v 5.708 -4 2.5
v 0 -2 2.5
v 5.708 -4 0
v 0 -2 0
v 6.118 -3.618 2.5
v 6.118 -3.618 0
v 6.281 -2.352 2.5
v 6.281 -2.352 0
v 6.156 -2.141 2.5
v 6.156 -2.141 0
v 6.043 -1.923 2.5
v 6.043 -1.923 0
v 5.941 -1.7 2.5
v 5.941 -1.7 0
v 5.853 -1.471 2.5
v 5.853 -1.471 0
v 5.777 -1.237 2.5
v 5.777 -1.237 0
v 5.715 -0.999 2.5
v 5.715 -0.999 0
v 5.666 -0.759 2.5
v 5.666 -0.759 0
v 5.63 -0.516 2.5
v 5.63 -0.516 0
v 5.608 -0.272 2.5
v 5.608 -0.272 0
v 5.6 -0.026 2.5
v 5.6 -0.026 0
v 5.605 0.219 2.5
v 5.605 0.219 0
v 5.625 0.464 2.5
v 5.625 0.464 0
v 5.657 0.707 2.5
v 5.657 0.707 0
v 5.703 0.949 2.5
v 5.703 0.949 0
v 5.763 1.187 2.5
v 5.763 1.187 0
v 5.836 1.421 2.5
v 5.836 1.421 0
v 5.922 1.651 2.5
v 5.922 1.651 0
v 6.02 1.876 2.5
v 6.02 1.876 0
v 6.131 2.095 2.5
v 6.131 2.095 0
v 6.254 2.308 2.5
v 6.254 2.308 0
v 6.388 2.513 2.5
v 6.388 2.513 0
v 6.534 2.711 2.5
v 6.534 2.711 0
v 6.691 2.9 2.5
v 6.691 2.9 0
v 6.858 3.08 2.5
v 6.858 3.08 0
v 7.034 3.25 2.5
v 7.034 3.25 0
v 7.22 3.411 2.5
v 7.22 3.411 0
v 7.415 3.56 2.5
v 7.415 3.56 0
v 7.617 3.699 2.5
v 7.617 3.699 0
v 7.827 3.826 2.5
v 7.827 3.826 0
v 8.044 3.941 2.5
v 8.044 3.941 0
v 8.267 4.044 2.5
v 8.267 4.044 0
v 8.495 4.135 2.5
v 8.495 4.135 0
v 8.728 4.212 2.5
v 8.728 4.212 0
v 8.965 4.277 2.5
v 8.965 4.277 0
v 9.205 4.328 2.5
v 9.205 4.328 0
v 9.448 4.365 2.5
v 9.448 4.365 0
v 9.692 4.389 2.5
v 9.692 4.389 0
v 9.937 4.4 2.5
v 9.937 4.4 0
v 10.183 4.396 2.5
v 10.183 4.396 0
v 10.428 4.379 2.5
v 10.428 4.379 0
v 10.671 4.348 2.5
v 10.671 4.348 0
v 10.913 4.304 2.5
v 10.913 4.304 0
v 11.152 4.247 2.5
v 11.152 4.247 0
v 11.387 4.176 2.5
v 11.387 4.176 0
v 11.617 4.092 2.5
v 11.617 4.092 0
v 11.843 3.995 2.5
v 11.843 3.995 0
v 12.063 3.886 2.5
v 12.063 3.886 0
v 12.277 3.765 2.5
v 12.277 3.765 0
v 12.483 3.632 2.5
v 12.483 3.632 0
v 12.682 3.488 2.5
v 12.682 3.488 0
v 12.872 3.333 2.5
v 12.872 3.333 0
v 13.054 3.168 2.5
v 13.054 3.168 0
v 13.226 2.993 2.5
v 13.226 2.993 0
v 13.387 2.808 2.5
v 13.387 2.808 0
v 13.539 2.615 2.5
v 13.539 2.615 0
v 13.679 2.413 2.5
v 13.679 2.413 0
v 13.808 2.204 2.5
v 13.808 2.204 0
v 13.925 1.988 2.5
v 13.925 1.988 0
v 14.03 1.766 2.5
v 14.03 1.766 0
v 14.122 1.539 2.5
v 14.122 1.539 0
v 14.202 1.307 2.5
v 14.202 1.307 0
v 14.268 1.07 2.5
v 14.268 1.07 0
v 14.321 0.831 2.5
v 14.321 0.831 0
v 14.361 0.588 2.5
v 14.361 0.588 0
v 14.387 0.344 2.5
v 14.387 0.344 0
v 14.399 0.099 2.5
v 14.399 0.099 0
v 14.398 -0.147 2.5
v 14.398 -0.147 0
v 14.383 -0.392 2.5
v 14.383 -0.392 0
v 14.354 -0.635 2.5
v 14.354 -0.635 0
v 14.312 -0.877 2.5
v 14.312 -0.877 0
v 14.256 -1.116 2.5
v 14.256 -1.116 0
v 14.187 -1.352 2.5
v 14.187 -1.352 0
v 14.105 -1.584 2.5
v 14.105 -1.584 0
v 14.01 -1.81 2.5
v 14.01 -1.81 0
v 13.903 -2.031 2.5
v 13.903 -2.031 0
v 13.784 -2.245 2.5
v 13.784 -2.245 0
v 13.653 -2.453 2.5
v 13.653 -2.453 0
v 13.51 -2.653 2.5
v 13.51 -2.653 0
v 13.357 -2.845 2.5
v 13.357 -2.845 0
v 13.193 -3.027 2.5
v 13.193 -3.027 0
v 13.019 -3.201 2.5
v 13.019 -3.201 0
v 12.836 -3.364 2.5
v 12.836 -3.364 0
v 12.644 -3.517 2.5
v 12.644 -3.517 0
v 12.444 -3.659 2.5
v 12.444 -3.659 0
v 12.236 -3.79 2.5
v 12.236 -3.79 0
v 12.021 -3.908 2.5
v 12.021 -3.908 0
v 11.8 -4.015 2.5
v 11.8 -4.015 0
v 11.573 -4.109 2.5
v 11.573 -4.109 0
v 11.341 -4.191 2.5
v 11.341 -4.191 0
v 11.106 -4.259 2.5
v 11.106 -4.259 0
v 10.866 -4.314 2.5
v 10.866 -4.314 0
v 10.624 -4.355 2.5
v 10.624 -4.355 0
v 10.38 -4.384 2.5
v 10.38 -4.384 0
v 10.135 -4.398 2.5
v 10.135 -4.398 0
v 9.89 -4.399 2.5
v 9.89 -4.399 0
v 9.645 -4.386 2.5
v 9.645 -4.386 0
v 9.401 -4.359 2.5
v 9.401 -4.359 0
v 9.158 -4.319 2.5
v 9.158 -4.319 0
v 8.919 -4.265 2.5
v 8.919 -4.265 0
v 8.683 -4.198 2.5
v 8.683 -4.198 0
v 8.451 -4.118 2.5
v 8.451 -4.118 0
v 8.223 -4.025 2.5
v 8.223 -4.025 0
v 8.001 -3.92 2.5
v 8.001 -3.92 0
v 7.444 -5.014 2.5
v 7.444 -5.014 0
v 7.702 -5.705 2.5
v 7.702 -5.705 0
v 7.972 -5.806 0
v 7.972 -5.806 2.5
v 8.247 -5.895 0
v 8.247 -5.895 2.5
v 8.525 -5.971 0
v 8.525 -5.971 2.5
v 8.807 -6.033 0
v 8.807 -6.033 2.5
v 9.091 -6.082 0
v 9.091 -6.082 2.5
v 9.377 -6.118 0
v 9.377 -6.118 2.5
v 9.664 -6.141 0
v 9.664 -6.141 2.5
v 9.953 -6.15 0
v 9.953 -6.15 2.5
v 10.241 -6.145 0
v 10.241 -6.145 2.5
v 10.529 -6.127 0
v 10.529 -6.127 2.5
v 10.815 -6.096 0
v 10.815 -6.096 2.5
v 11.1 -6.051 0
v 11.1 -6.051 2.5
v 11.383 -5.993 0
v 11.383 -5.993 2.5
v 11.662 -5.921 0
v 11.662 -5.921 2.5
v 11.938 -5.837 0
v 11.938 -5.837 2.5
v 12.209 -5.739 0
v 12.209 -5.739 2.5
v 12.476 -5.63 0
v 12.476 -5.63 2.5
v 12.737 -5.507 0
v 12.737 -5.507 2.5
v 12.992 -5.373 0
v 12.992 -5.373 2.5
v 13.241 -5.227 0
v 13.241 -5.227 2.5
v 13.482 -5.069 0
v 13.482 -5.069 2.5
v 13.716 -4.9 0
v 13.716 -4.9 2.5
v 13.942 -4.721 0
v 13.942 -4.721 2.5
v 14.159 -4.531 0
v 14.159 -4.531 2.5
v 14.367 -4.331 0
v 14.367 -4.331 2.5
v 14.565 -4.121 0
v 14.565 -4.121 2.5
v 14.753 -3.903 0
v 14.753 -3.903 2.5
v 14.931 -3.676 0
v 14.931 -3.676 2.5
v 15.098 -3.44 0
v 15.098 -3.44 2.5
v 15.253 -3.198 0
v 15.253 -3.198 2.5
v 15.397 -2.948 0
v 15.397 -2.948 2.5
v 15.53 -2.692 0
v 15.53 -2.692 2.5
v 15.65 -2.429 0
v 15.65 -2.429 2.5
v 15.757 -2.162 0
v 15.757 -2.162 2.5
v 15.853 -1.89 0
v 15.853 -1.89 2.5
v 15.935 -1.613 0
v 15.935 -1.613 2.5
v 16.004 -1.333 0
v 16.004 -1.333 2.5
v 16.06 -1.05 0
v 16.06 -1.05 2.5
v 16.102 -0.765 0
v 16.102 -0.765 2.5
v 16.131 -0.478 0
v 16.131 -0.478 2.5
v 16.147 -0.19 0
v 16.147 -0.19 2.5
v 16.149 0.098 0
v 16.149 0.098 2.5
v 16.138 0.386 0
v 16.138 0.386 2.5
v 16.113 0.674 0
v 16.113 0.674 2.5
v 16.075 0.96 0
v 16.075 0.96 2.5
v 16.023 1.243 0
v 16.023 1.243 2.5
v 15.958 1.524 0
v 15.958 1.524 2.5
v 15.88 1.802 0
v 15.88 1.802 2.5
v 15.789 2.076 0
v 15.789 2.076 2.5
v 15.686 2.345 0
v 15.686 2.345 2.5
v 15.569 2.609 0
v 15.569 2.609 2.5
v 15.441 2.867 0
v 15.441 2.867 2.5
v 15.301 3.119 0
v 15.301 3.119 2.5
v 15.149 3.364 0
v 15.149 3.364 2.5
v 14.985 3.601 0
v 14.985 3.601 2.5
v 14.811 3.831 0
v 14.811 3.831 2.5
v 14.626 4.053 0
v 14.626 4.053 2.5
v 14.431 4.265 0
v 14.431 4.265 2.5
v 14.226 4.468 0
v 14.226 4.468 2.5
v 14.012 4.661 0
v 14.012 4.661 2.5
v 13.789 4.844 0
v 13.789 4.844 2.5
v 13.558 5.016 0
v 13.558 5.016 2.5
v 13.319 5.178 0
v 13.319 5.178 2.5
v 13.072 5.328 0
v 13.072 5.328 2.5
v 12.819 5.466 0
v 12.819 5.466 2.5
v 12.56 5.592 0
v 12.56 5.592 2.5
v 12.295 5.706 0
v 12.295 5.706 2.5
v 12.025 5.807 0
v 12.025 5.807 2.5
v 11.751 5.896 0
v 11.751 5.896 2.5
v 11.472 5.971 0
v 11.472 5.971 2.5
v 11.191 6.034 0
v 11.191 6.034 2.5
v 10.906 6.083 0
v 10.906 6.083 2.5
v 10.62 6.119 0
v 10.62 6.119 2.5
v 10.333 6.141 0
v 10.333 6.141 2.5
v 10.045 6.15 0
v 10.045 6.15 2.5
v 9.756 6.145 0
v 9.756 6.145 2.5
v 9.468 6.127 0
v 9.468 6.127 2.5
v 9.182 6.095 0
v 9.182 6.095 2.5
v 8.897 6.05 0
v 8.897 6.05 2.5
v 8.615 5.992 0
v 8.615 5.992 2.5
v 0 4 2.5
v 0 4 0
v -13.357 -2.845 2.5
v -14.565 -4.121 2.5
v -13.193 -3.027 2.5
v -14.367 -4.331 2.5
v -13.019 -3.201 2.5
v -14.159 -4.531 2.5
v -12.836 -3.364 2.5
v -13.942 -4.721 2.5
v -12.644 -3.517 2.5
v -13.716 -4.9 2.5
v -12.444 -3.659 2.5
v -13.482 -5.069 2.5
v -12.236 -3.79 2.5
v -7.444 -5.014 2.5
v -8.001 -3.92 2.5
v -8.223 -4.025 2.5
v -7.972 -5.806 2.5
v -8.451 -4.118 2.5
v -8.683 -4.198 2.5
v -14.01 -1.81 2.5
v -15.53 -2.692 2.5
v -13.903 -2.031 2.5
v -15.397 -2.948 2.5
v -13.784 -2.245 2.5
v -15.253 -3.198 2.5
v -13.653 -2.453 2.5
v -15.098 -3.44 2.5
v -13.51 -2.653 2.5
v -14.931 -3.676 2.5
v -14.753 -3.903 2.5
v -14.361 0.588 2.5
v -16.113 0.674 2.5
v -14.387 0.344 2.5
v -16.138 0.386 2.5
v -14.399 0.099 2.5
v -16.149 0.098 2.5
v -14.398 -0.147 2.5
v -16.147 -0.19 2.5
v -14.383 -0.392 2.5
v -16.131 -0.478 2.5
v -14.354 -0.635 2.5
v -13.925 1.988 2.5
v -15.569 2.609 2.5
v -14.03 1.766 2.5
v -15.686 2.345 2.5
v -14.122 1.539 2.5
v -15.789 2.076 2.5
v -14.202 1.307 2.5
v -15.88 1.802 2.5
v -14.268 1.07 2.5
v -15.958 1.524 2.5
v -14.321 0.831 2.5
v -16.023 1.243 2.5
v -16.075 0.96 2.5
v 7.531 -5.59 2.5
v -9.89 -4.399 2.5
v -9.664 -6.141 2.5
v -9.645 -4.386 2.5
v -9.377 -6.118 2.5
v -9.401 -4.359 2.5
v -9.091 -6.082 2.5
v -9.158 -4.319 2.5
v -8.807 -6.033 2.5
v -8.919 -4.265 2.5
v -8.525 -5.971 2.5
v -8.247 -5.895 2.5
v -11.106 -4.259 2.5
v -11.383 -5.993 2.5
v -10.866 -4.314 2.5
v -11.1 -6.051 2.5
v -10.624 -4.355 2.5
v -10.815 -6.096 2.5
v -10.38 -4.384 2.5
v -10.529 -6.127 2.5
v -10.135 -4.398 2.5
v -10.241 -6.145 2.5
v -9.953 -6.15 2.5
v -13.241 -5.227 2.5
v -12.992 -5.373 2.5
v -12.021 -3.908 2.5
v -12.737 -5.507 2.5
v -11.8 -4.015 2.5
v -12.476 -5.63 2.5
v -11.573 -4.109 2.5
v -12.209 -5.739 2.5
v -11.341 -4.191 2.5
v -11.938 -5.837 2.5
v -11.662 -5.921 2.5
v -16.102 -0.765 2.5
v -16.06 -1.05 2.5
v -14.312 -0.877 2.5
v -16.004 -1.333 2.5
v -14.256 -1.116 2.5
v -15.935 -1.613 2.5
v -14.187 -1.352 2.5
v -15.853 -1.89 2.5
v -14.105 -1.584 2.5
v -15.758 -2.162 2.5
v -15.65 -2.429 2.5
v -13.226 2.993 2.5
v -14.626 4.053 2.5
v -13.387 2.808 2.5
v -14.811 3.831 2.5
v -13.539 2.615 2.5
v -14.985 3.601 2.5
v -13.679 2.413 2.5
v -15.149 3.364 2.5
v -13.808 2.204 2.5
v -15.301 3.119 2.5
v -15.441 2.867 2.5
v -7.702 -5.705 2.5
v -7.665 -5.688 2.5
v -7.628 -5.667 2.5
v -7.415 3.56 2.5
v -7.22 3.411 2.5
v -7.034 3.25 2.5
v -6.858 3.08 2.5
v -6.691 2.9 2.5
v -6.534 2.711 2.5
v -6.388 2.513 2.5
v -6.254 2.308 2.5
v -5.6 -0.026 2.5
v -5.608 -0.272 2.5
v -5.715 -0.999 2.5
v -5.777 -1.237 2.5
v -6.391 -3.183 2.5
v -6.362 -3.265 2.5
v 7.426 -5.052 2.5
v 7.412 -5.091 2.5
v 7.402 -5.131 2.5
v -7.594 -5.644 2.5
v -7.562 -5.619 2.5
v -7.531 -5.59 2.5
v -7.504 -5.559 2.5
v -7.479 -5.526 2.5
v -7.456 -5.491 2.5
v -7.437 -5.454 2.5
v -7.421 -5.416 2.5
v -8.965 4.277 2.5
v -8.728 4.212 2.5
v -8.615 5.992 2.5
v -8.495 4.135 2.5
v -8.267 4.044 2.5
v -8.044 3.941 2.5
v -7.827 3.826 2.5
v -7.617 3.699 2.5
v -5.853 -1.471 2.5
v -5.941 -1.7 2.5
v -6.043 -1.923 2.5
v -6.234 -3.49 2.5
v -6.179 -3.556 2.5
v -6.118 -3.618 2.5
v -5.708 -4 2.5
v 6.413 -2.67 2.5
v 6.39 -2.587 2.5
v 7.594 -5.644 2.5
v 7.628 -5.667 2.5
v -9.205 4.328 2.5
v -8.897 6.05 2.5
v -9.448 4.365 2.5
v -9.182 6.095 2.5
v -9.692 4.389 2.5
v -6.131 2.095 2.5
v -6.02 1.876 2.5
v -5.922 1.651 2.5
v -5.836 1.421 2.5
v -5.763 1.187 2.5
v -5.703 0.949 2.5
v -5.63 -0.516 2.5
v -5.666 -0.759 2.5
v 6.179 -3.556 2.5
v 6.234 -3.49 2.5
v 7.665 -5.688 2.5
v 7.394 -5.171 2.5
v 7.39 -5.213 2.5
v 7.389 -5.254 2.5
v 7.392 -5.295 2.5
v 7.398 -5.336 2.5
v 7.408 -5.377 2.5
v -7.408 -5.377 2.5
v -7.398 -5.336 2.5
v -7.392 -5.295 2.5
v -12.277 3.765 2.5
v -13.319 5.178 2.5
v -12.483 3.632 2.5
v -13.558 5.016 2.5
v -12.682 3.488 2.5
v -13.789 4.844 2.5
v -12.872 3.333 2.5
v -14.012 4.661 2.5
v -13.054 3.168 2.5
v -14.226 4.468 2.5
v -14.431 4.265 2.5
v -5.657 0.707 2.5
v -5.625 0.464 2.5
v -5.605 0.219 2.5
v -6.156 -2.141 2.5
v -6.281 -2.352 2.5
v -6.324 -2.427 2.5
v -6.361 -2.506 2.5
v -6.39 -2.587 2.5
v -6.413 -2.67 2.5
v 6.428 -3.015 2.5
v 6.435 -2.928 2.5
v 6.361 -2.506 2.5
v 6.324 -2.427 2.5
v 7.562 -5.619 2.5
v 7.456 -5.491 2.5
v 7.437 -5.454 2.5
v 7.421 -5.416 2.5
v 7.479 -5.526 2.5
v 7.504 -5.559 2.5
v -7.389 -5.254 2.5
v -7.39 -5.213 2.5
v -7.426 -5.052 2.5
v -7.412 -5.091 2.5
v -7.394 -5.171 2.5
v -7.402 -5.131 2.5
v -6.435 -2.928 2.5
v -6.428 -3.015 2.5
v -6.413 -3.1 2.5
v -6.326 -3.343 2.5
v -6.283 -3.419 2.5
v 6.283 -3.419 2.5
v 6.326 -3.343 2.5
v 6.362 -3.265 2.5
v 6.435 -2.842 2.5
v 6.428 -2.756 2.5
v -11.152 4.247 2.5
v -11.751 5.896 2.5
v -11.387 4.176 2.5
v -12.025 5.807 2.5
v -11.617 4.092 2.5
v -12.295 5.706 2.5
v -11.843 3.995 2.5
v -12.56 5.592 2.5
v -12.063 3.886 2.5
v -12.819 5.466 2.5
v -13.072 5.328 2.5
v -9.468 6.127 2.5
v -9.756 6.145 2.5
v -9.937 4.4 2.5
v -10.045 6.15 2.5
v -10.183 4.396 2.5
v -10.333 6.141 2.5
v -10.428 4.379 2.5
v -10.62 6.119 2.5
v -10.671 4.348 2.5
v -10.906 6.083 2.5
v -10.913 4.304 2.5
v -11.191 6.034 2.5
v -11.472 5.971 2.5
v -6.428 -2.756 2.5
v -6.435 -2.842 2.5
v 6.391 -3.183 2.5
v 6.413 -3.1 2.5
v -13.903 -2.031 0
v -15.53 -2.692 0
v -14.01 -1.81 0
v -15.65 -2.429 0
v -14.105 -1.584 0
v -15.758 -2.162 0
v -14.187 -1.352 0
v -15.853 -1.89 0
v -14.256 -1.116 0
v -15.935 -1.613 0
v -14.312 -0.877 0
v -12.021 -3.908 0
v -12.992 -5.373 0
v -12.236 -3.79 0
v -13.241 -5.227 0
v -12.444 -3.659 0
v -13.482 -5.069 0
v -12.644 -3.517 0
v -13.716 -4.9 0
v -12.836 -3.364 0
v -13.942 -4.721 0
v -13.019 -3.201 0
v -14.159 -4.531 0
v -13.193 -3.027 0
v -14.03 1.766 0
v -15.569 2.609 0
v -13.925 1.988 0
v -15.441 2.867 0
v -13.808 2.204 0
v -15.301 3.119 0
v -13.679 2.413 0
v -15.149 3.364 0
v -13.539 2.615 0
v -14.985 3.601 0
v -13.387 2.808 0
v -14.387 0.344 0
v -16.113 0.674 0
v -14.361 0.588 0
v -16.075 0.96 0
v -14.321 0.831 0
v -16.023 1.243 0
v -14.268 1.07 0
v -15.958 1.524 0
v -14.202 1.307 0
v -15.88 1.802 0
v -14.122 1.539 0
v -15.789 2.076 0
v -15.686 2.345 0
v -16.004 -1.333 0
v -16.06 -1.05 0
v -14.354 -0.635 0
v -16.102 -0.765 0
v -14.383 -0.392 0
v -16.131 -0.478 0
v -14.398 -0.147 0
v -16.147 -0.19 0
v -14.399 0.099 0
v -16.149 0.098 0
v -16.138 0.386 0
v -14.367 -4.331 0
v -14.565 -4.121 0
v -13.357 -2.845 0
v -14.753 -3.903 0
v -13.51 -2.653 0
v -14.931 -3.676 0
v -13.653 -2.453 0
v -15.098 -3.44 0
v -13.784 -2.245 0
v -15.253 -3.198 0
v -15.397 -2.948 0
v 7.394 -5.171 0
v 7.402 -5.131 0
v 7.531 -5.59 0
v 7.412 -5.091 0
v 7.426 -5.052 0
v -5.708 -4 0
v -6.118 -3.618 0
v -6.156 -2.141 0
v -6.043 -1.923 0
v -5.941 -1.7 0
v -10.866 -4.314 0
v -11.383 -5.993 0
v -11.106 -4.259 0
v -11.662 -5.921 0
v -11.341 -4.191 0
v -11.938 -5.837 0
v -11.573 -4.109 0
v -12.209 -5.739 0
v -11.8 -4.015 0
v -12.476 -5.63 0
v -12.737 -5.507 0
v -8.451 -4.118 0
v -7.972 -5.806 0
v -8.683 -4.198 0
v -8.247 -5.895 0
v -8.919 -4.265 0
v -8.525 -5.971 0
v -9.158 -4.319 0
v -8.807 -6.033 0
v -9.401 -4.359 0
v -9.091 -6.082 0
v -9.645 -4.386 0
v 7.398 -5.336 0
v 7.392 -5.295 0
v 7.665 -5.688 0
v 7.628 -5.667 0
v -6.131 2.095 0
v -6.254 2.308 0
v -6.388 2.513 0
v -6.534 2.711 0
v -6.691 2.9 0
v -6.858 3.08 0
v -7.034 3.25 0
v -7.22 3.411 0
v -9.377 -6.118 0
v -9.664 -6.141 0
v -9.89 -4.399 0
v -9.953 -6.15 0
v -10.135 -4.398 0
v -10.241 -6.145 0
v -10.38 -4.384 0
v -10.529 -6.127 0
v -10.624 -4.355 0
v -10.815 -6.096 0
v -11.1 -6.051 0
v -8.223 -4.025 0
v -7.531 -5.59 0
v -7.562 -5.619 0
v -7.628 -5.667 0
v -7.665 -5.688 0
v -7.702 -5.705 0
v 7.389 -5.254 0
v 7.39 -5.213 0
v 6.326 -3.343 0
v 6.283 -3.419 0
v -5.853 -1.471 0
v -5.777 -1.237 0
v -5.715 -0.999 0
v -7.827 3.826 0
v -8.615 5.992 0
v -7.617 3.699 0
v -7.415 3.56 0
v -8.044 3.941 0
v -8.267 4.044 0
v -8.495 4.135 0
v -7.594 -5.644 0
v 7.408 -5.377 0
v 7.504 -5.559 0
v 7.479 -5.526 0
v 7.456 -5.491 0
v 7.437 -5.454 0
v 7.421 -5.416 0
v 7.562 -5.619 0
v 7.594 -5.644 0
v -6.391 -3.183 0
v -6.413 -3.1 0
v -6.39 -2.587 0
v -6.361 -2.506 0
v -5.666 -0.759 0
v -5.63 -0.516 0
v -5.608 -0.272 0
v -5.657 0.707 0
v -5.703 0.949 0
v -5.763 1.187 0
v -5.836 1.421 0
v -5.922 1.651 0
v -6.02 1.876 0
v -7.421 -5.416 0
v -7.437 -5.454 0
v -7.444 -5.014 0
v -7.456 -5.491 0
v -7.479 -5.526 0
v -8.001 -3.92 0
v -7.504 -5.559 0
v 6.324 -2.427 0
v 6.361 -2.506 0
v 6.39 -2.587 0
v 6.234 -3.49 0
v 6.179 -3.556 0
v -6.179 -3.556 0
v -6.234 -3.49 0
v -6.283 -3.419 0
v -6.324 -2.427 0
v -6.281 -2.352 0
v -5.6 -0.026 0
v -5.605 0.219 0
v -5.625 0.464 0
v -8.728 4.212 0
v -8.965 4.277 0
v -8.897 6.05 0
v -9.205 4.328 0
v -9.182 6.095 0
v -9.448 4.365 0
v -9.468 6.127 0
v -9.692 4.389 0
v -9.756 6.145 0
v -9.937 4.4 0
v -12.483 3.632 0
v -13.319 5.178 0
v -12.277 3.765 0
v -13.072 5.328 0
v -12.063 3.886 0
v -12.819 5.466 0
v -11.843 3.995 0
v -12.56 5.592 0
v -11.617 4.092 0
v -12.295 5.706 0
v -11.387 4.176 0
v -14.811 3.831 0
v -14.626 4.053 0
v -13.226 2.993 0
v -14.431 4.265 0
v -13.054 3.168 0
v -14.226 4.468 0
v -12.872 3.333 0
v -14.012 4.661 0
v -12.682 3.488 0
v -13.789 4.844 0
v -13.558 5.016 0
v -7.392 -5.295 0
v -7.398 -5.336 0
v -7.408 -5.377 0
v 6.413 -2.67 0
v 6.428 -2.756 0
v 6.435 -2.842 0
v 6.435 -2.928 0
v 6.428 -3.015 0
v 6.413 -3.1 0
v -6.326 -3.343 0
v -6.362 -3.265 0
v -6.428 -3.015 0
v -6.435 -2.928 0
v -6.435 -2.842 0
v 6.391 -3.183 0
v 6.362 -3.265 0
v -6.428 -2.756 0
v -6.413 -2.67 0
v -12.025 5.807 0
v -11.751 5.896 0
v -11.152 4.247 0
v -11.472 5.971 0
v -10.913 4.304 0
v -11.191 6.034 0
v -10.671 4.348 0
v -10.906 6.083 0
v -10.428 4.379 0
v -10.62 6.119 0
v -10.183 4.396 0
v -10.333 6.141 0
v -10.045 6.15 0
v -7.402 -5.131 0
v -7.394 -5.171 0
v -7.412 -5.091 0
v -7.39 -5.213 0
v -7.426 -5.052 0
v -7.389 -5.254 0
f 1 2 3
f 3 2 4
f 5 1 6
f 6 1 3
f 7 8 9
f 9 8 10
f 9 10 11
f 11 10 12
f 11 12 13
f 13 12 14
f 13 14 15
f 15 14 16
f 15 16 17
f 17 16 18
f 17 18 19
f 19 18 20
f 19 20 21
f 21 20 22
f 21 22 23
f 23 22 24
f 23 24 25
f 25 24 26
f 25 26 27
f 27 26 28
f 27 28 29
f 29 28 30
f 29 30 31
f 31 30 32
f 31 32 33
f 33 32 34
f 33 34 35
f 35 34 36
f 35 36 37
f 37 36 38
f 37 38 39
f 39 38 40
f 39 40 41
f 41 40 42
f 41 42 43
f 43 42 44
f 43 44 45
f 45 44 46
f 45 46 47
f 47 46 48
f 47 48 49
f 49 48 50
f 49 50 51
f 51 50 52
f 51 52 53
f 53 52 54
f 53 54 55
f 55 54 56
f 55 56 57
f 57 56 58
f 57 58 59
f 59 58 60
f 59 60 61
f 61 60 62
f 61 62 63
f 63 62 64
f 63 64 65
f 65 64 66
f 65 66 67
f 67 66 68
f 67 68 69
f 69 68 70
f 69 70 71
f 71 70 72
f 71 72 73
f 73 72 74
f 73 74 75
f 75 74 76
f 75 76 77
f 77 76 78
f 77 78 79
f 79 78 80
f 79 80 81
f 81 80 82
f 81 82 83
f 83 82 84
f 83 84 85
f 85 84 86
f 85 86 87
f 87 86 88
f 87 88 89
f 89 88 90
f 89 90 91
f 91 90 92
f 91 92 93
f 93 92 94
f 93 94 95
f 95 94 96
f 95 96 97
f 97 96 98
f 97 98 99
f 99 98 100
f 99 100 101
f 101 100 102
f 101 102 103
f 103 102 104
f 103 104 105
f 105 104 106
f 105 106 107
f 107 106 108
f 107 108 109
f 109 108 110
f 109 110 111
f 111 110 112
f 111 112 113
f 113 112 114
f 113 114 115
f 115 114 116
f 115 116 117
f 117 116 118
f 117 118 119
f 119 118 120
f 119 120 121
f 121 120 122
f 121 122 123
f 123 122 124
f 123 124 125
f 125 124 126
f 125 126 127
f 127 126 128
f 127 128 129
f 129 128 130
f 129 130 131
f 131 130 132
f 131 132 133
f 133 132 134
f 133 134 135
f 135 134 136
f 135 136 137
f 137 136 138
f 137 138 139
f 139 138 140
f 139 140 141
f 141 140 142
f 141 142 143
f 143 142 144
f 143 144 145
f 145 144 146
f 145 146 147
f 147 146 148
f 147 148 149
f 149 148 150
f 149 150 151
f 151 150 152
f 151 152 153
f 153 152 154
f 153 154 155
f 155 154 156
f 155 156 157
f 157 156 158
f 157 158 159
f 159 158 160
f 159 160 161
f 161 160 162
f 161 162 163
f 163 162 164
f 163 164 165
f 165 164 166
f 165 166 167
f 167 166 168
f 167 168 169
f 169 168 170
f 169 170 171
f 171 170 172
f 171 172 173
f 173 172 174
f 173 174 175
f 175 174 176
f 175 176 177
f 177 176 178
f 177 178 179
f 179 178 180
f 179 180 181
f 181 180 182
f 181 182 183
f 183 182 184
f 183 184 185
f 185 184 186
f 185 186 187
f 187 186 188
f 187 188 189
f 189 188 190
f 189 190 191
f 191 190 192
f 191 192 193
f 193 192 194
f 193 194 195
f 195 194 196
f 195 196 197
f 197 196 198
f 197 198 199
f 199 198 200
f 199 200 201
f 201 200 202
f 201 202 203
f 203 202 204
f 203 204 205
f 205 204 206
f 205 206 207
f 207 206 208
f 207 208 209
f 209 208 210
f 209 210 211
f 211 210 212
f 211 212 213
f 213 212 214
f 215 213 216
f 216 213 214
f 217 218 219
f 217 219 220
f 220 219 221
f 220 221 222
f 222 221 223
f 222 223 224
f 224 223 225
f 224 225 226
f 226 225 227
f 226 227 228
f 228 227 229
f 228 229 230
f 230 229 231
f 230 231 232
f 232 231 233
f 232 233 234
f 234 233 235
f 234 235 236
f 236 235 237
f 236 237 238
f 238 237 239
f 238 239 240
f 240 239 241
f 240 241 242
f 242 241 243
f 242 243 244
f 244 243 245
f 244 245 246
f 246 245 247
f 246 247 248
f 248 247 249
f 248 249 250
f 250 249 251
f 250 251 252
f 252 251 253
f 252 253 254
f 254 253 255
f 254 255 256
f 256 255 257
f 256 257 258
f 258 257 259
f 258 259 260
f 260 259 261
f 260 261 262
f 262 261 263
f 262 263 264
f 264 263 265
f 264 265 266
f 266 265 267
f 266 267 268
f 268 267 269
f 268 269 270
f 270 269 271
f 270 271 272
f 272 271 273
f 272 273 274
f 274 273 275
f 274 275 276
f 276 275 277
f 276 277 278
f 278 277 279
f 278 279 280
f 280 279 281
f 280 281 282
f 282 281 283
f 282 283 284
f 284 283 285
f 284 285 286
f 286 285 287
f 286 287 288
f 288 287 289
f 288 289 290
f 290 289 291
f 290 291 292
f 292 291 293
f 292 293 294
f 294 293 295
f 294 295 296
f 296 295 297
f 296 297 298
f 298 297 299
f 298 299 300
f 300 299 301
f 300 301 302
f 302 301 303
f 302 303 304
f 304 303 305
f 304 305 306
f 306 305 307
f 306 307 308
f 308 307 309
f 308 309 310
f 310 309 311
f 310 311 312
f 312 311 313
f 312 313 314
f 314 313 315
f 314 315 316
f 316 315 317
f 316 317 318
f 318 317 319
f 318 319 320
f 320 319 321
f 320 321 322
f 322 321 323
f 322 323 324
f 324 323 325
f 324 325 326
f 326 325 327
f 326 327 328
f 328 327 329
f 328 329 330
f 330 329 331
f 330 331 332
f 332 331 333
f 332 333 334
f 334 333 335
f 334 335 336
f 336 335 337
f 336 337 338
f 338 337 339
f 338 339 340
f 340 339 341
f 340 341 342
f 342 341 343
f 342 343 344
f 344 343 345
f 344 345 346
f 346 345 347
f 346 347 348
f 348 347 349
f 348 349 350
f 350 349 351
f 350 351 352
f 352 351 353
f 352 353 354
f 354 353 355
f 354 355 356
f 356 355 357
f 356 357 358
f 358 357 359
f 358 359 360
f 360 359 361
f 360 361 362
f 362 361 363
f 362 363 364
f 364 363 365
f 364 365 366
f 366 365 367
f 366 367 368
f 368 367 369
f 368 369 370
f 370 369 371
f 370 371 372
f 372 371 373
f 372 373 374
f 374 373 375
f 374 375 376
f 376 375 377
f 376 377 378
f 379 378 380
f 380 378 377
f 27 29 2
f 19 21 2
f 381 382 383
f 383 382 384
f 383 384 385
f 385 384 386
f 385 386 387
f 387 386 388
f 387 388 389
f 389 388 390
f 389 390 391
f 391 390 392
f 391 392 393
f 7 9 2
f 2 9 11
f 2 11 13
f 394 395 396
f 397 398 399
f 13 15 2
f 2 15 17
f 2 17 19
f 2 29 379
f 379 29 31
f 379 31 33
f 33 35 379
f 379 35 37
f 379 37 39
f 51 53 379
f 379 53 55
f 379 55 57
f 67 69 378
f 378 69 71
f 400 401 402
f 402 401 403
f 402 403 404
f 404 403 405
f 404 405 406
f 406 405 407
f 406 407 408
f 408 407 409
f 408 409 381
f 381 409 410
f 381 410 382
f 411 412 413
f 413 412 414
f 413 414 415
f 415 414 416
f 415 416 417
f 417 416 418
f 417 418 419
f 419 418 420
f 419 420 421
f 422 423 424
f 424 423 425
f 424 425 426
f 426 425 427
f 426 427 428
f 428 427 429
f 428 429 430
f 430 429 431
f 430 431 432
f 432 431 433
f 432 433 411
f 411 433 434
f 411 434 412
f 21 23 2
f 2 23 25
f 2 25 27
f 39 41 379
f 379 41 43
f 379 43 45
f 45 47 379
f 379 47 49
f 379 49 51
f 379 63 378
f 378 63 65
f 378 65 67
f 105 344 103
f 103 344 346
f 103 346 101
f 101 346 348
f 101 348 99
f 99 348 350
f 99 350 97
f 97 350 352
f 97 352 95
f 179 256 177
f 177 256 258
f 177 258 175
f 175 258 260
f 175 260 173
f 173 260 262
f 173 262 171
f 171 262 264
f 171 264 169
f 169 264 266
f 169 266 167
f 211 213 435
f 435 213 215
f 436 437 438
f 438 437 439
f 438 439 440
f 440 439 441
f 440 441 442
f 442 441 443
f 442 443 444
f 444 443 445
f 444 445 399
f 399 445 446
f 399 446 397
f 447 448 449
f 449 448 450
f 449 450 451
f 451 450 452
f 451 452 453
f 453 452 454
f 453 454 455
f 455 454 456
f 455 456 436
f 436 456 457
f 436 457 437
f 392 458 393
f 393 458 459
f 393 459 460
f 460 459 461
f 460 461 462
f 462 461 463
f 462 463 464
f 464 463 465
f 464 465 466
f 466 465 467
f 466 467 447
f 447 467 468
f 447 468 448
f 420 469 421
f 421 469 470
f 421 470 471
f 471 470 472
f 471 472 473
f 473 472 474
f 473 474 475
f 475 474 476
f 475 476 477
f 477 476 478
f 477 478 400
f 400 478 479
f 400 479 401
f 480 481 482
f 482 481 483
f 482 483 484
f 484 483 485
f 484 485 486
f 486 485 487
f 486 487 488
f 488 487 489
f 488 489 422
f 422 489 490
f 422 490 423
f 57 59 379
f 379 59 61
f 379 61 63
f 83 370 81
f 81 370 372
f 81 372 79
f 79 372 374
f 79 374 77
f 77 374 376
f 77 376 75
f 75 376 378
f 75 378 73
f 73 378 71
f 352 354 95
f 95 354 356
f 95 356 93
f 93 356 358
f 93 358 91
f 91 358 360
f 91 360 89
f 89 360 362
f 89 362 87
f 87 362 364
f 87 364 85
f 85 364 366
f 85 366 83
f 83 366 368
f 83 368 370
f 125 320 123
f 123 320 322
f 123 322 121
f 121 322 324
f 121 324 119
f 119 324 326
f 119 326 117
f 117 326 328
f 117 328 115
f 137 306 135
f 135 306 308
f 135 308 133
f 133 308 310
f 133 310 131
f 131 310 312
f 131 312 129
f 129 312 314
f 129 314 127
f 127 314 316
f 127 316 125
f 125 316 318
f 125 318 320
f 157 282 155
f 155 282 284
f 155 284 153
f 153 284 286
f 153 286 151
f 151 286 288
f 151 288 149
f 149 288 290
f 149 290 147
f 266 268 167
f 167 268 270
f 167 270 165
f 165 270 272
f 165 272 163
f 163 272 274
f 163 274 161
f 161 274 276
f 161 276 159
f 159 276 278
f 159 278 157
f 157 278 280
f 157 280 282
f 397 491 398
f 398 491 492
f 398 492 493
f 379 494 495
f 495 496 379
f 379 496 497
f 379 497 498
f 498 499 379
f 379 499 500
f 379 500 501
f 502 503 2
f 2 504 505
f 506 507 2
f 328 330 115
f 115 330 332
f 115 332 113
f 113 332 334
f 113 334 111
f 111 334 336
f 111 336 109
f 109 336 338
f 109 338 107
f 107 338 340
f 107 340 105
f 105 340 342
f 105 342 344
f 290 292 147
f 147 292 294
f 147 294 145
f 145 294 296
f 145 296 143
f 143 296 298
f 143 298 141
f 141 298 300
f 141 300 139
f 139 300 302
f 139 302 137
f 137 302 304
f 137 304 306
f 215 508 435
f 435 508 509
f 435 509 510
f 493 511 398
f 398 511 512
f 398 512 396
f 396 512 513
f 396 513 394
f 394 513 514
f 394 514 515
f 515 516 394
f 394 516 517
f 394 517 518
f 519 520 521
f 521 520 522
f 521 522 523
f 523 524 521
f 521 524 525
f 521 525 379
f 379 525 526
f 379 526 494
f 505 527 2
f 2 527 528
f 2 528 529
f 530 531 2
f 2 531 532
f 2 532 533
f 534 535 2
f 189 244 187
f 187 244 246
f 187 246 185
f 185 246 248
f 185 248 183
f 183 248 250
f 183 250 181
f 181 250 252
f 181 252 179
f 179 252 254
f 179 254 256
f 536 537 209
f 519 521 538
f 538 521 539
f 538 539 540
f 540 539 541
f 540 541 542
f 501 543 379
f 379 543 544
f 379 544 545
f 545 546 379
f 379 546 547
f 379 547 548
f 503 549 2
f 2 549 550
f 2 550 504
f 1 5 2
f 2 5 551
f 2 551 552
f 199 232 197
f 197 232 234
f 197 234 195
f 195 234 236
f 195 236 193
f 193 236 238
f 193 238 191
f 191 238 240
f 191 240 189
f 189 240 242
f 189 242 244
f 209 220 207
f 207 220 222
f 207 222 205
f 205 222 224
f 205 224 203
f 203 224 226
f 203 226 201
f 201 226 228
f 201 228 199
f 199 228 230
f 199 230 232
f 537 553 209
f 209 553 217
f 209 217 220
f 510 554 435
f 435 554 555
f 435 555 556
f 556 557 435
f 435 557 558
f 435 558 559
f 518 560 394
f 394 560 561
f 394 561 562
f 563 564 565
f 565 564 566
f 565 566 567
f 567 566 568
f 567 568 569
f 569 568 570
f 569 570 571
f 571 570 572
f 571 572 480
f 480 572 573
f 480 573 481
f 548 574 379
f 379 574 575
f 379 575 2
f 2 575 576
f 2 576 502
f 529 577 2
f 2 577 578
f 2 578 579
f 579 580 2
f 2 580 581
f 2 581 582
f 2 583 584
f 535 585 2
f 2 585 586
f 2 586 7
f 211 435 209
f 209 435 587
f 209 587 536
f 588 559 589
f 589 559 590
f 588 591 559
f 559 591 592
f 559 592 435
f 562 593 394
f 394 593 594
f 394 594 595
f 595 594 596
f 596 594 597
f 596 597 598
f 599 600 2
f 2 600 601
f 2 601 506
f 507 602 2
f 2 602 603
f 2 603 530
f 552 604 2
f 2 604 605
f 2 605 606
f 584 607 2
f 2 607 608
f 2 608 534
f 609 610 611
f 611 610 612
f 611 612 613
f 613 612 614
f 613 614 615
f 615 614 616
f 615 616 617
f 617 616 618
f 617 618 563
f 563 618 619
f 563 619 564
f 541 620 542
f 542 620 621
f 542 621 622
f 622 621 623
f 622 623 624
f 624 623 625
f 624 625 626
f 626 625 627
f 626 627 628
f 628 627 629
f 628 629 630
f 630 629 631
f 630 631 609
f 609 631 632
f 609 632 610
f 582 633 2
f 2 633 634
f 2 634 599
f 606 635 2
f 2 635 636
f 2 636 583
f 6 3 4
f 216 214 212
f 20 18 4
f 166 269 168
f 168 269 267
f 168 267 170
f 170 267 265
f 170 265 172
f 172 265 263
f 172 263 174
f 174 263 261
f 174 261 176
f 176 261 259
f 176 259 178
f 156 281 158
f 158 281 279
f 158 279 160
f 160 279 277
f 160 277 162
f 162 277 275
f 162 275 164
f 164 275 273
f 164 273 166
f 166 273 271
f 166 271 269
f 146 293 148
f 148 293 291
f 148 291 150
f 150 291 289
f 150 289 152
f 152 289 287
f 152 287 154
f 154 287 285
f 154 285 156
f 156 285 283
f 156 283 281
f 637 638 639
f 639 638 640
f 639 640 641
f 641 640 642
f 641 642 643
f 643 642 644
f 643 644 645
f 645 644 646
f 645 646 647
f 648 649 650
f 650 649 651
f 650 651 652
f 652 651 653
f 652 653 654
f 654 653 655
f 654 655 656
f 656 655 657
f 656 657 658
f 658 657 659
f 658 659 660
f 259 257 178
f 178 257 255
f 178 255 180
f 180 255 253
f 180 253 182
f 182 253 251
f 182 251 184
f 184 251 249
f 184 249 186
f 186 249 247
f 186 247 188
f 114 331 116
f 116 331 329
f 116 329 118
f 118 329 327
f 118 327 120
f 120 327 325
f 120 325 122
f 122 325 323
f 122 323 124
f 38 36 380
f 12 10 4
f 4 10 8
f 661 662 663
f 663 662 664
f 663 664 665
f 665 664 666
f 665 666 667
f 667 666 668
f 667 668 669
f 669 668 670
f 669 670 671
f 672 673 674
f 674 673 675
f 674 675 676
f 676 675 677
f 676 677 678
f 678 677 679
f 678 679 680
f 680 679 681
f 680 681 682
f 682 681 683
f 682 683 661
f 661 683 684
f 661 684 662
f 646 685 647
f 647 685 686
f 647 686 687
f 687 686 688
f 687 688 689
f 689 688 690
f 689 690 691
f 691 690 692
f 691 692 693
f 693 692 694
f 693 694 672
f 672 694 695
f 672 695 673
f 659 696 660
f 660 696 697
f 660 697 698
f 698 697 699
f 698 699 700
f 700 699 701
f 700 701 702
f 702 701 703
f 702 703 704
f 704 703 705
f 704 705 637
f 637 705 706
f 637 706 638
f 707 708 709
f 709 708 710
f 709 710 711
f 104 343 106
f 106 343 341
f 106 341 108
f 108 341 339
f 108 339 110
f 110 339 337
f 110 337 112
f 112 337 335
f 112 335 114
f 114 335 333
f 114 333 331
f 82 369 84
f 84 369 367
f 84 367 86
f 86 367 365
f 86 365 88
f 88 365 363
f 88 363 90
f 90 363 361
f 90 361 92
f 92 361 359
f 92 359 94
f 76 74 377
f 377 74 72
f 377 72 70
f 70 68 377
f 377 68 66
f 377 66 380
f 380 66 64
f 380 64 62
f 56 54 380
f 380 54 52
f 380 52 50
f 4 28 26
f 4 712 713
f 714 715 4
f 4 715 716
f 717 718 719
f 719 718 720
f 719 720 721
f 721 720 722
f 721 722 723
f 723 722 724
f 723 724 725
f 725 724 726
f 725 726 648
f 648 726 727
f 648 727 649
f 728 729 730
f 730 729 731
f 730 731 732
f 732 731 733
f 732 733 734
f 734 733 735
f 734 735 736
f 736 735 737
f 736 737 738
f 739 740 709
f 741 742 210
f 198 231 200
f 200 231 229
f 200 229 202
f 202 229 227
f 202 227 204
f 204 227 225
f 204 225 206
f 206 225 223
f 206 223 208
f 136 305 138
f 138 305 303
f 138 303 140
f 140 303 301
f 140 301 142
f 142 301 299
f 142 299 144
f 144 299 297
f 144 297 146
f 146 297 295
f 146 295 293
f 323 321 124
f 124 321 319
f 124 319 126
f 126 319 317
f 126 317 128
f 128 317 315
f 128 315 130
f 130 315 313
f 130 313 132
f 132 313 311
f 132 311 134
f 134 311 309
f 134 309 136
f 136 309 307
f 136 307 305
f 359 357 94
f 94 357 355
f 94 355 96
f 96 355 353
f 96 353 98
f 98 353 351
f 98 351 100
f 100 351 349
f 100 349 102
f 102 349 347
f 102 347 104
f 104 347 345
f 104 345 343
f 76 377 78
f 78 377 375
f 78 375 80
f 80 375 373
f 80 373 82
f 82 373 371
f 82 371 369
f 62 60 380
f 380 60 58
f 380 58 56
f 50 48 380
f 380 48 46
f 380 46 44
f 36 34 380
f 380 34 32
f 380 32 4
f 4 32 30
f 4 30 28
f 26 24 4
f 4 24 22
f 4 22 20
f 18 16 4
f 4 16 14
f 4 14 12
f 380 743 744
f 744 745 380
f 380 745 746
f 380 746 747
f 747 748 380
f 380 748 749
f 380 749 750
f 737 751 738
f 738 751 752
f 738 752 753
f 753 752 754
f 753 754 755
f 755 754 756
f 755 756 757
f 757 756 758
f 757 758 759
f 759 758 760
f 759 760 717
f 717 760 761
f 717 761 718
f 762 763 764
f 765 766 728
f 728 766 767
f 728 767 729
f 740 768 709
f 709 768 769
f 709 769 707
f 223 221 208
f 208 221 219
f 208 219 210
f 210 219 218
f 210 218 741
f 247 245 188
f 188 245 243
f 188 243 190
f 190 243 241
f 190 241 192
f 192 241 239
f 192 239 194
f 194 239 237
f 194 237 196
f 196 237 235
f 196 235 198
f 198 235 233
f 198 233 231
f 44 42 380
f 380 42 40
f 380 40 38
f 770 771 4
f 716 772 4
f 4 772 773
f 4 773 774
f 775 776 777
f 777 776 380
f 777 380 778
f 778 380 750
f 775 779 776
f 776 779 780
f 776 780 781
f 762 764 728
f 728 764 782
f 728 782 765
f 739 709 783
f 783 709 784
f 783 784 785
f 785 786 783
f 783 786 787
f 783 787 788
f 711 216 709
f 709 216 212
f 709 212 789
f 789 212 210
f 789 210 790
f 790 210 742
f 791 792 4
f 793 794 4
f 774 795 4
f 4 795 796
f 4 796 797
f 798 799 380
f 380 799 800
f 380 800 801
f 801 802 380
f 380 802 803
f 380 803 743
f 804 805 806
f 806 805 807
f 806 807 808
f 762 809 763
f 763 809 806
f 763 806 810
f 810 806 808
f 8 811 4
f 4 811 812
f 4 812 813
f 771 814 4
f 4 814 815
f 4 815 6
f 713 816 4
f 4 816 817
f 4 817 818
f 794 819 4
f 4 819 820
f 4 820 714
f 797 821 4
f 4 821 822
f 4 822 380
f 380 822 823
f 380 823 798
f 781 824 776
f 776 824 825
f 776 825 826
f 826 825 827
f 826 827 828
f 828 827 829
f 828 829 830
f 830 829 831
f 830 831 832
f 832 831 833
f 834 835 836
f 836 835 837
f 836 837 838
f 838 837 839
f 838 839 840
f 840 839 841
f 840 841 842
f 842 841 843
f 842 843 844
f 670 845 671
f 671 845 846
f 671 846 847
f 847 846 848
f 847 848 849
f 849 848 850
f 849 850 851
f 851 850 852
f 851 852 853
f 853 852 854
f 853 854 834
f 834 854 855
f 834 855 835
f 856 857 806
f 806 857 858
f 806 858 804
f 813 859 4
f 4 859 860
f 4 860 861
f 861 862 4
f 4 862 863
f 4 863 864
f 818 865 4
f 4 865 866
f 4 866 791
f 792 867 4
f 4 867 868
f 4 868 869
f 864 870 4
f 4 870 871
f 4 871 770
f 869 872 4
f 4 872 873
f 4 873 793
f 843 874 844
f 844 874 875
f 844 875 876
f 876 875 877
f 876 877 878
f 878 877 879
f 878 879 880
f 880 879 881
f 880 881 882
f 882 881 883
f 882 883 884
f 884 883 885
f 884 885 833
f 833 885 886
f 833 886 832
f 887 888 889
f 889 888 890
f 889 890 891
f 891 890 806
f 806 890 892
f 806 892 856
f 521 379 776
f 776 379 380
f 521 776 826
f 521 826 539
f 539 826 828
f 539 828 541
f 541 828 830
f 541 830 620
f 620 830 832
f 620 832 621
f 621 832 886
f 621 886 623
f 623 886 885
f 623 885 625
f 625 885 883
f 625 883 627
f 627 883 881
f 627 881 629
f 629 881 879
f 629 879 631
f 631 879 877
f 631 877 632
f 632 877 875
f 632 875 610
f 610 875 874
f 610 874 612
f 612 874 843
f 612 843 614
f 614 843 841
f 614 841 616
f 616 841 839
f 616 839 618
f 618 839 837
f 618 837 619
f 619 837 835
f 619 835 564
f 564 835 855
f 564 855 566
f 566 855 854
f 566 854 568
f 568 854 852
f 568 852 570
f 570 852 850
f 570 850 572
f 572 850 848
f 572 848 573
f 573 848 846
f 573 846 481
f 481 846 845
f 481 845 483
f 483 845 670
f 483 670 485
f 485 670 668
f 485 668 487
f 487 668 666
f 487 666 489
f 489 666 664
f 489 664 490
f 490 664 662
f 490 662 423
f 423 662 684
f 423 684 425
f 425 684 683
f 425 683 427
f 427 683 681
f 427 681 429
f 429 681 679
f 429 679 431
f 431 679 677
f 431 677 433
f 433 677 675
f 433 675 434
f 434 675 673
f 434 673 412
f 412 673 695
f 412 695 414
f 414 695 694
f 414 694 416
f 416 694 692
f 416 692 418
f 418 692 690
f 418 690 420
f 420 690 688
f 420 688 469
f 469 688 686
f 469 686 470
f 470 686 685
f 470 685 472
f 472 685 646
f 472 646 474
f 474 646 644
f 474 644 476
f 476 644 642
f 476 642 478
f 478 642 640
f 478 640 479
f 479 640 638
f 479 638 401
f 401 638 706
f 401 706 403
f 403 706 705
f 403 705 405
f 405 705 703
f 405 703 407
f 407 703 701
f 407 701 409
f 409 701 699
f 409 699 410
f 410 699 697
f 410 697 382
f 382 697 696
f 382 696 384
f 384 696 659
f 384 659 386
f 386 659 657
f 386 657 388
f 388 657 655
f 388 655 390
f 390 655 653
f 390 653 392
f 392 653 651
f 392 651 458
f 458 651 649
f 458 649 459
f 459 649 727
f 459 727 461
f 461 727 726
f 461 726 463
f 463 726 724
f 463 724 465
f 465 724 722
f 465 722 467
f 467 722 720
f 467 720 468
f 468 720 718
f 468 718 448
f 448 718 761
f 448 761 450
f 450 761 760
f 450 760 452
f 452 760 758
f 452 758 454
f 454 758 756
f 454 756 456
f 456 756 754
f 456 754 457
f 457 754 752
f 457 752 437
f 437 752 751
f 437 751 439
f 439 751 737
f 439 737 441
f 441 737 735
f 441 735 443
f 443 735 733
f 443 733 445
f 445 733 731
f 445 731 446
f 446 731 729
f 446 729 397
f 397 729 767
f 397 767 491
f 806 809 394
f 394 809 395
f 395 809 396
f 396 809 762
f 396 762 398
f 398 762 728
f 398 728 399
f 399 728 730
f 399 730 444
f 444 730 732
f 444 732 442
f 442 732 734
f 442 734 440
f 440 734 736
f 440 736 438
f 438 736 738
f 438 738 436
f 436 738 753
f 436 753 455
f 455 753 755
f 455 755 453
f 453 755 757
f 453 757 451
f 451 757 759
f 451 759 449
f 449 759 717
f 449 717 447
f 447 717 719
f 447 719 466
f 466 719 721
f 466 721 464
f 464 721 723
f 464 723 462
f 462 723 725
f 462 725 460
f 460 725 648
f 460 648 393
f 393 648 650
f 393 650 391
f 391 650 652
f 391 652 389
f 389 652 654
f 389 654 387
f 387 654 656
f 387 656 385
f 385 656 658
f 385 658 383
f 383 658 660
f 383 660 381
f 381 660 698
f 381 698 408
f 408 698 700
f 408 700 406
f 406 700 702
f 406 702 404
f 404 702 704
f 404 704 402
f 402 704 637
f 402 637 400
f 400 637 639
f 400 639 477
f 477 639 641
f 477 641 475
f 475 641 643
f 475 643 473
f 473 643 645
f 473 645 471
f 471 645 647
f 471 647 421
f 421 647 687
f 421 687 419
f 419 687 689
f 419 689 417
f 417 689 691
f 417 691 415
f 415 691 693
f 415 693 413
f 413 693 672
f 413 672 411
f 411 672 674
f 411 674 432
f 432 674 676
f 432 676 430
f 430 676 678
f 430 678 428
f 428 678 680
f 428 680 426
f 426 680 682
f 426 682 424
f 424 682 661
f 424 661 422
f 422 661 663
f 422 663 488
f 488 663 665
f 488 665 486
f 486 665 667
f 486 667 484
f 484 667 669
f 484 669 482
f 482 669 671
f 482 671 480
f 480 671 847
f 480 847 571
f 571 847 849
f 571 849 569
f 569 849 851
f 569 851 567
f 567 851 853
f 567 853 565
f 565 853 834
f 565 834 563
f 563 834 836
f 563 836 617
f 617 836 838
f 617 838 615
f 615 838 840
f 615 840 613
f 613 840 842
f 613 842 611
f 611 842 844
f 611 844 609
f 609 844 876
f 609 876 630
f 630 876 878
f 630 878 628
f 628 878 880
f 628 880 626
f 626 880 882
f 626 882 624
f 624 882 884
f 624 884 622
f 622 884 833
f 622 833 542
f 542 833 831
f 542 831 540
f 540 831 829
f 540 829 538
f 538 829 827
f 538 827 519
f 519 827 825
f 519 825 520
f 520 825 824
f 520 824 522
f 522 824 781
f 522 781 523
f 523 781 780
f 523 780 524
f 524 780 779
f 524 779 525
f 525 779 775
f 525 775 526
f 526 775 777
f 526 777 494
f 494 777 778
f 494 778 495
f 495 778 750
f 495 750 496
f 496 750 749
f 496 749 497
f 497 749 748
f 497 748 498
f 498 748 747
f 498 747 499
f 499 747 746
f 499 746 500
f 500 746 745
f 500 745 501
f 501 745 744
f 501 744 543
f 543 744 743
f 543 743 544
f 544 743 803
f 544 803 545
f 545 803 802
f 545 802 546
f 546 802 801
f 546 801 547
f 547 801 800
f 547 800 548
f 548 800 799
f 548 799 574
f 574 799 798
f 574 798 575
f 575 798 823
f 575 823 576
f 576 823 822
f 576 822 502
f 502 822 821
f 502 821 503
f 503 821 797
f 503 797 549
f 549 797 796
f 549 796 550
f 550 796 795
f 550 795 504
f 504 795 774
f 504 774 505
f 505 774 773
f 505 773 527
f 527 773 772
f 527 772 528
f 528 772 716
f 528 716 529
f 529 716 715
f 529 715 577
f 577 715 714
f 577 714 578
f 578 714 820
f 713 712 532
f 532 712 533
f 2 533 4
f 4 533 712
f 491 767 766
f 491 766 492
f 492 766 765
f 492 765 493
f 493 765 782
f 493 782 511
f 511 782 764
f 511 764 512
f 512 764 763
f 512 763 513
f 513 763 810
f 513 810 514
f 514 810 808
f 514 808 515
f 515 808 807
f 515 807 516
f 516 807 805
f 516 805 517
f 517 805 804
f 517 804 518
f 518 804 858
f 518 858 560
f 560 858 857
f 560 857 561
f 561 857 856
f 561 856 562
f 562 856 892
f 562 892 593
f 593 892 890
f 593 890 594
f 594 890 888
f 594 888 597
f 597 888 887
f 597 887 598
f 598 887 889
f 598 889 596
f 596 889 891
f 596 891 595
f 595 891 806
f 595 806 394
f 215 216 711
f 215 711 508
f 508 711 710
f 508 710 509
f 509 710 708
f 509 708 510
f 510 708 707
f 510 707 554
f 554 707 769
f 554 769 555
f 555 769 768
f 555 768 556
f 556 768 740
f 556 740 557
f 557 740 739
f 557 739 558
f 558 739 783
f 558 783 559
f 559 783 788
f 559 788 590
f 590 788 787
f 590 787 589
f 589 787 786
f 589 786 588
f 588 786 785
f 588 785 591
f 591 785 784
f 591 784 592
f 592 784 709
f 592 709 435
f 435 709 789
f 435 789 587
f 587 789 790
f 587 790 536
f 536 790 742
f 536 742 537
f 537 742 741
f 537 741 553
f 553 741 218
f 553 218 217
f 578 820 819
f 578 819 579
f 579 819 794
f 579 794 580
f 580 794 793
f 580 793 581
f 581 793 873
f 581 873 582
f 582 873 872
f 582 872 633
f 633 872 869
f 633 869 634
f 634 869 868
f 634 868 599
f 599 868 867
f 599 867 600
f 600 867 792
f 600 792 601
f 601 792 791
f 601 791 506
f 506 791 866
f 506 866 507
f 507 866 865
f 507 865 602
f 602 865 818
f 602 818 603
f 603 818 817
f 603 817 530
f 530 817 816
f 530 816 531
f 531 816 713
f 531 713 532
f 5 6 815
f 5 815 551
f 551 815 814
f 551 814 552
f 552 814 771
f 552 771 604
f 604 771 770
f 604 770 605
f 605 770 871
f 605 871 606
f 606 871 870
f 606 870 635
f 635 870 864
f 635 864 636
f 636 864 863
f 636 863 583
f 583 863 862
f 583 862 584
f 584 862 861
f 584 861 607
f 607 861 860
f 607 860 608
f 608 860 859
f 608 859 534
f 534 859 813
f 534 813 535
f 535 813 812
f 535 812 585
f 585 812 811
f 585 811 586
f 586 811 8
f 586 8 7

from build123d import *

# Parameters (mm, degrees)
BOSS_EXTRUDE1_DEPTH = 2.5
FILLET1_R           = 0.5
FILLET2_R           = 1


with BuildPart() as part:
    # Sketch1 → Boss-Extrude1 (new body)
    with BuildSketch(Plane.XY):
        with BuildLine():
            Line((0, 4), (8.614511907, 5.991904768))
            ThreePointArc((8.614511907, 5.991904768), (16.104194038, -0.749209679), (7.206608675, -5.479002182))
            Line((7.206608675, -5.479002182), (8.001476125, -3.91993652))
            ThreePointArc((8.001476125, -3.91993652), (12.64885164, 3.513343848), (6.781304612, -3))
            Line((6.781304612, -3), (5.708406149, -4))
            Line((5.708406149, -4), (0, -2))
            Line((0, -2), (0, 4))
        make_face()
    boss_extrude1 = extrude(amount=BOSS_EXTRUDE1_DEPTH)

    # Mirror1: Boss-Extrude1 across plane
    add(boss_extrude1.mirror(Plane(origin=(0, 4, 2.5), x_dir=(0, 0, 1), z_dir=(1, 0, 0))))

    # Fillet1
    fillet1_edges = [part.edges().sort_by_distance(p)[0] for p in [
        (7.206608675, -5.479002182, 1.25),
        (-7.206608675, -5.479002182, 1.25),
    ]]
    fillet(fillet1_edges, radius=FILLET1_R)

    # Fillet2
    fillet2_edges = [part.edges().sort_by_distance(p)[0] for p in [
        (6.781304612, -3, 1.25),
        (-6.781304612, -3, 1.25),
    ]]
    fillet(fillet2_edges, radius=FILLET2_R)


solid = part.part
